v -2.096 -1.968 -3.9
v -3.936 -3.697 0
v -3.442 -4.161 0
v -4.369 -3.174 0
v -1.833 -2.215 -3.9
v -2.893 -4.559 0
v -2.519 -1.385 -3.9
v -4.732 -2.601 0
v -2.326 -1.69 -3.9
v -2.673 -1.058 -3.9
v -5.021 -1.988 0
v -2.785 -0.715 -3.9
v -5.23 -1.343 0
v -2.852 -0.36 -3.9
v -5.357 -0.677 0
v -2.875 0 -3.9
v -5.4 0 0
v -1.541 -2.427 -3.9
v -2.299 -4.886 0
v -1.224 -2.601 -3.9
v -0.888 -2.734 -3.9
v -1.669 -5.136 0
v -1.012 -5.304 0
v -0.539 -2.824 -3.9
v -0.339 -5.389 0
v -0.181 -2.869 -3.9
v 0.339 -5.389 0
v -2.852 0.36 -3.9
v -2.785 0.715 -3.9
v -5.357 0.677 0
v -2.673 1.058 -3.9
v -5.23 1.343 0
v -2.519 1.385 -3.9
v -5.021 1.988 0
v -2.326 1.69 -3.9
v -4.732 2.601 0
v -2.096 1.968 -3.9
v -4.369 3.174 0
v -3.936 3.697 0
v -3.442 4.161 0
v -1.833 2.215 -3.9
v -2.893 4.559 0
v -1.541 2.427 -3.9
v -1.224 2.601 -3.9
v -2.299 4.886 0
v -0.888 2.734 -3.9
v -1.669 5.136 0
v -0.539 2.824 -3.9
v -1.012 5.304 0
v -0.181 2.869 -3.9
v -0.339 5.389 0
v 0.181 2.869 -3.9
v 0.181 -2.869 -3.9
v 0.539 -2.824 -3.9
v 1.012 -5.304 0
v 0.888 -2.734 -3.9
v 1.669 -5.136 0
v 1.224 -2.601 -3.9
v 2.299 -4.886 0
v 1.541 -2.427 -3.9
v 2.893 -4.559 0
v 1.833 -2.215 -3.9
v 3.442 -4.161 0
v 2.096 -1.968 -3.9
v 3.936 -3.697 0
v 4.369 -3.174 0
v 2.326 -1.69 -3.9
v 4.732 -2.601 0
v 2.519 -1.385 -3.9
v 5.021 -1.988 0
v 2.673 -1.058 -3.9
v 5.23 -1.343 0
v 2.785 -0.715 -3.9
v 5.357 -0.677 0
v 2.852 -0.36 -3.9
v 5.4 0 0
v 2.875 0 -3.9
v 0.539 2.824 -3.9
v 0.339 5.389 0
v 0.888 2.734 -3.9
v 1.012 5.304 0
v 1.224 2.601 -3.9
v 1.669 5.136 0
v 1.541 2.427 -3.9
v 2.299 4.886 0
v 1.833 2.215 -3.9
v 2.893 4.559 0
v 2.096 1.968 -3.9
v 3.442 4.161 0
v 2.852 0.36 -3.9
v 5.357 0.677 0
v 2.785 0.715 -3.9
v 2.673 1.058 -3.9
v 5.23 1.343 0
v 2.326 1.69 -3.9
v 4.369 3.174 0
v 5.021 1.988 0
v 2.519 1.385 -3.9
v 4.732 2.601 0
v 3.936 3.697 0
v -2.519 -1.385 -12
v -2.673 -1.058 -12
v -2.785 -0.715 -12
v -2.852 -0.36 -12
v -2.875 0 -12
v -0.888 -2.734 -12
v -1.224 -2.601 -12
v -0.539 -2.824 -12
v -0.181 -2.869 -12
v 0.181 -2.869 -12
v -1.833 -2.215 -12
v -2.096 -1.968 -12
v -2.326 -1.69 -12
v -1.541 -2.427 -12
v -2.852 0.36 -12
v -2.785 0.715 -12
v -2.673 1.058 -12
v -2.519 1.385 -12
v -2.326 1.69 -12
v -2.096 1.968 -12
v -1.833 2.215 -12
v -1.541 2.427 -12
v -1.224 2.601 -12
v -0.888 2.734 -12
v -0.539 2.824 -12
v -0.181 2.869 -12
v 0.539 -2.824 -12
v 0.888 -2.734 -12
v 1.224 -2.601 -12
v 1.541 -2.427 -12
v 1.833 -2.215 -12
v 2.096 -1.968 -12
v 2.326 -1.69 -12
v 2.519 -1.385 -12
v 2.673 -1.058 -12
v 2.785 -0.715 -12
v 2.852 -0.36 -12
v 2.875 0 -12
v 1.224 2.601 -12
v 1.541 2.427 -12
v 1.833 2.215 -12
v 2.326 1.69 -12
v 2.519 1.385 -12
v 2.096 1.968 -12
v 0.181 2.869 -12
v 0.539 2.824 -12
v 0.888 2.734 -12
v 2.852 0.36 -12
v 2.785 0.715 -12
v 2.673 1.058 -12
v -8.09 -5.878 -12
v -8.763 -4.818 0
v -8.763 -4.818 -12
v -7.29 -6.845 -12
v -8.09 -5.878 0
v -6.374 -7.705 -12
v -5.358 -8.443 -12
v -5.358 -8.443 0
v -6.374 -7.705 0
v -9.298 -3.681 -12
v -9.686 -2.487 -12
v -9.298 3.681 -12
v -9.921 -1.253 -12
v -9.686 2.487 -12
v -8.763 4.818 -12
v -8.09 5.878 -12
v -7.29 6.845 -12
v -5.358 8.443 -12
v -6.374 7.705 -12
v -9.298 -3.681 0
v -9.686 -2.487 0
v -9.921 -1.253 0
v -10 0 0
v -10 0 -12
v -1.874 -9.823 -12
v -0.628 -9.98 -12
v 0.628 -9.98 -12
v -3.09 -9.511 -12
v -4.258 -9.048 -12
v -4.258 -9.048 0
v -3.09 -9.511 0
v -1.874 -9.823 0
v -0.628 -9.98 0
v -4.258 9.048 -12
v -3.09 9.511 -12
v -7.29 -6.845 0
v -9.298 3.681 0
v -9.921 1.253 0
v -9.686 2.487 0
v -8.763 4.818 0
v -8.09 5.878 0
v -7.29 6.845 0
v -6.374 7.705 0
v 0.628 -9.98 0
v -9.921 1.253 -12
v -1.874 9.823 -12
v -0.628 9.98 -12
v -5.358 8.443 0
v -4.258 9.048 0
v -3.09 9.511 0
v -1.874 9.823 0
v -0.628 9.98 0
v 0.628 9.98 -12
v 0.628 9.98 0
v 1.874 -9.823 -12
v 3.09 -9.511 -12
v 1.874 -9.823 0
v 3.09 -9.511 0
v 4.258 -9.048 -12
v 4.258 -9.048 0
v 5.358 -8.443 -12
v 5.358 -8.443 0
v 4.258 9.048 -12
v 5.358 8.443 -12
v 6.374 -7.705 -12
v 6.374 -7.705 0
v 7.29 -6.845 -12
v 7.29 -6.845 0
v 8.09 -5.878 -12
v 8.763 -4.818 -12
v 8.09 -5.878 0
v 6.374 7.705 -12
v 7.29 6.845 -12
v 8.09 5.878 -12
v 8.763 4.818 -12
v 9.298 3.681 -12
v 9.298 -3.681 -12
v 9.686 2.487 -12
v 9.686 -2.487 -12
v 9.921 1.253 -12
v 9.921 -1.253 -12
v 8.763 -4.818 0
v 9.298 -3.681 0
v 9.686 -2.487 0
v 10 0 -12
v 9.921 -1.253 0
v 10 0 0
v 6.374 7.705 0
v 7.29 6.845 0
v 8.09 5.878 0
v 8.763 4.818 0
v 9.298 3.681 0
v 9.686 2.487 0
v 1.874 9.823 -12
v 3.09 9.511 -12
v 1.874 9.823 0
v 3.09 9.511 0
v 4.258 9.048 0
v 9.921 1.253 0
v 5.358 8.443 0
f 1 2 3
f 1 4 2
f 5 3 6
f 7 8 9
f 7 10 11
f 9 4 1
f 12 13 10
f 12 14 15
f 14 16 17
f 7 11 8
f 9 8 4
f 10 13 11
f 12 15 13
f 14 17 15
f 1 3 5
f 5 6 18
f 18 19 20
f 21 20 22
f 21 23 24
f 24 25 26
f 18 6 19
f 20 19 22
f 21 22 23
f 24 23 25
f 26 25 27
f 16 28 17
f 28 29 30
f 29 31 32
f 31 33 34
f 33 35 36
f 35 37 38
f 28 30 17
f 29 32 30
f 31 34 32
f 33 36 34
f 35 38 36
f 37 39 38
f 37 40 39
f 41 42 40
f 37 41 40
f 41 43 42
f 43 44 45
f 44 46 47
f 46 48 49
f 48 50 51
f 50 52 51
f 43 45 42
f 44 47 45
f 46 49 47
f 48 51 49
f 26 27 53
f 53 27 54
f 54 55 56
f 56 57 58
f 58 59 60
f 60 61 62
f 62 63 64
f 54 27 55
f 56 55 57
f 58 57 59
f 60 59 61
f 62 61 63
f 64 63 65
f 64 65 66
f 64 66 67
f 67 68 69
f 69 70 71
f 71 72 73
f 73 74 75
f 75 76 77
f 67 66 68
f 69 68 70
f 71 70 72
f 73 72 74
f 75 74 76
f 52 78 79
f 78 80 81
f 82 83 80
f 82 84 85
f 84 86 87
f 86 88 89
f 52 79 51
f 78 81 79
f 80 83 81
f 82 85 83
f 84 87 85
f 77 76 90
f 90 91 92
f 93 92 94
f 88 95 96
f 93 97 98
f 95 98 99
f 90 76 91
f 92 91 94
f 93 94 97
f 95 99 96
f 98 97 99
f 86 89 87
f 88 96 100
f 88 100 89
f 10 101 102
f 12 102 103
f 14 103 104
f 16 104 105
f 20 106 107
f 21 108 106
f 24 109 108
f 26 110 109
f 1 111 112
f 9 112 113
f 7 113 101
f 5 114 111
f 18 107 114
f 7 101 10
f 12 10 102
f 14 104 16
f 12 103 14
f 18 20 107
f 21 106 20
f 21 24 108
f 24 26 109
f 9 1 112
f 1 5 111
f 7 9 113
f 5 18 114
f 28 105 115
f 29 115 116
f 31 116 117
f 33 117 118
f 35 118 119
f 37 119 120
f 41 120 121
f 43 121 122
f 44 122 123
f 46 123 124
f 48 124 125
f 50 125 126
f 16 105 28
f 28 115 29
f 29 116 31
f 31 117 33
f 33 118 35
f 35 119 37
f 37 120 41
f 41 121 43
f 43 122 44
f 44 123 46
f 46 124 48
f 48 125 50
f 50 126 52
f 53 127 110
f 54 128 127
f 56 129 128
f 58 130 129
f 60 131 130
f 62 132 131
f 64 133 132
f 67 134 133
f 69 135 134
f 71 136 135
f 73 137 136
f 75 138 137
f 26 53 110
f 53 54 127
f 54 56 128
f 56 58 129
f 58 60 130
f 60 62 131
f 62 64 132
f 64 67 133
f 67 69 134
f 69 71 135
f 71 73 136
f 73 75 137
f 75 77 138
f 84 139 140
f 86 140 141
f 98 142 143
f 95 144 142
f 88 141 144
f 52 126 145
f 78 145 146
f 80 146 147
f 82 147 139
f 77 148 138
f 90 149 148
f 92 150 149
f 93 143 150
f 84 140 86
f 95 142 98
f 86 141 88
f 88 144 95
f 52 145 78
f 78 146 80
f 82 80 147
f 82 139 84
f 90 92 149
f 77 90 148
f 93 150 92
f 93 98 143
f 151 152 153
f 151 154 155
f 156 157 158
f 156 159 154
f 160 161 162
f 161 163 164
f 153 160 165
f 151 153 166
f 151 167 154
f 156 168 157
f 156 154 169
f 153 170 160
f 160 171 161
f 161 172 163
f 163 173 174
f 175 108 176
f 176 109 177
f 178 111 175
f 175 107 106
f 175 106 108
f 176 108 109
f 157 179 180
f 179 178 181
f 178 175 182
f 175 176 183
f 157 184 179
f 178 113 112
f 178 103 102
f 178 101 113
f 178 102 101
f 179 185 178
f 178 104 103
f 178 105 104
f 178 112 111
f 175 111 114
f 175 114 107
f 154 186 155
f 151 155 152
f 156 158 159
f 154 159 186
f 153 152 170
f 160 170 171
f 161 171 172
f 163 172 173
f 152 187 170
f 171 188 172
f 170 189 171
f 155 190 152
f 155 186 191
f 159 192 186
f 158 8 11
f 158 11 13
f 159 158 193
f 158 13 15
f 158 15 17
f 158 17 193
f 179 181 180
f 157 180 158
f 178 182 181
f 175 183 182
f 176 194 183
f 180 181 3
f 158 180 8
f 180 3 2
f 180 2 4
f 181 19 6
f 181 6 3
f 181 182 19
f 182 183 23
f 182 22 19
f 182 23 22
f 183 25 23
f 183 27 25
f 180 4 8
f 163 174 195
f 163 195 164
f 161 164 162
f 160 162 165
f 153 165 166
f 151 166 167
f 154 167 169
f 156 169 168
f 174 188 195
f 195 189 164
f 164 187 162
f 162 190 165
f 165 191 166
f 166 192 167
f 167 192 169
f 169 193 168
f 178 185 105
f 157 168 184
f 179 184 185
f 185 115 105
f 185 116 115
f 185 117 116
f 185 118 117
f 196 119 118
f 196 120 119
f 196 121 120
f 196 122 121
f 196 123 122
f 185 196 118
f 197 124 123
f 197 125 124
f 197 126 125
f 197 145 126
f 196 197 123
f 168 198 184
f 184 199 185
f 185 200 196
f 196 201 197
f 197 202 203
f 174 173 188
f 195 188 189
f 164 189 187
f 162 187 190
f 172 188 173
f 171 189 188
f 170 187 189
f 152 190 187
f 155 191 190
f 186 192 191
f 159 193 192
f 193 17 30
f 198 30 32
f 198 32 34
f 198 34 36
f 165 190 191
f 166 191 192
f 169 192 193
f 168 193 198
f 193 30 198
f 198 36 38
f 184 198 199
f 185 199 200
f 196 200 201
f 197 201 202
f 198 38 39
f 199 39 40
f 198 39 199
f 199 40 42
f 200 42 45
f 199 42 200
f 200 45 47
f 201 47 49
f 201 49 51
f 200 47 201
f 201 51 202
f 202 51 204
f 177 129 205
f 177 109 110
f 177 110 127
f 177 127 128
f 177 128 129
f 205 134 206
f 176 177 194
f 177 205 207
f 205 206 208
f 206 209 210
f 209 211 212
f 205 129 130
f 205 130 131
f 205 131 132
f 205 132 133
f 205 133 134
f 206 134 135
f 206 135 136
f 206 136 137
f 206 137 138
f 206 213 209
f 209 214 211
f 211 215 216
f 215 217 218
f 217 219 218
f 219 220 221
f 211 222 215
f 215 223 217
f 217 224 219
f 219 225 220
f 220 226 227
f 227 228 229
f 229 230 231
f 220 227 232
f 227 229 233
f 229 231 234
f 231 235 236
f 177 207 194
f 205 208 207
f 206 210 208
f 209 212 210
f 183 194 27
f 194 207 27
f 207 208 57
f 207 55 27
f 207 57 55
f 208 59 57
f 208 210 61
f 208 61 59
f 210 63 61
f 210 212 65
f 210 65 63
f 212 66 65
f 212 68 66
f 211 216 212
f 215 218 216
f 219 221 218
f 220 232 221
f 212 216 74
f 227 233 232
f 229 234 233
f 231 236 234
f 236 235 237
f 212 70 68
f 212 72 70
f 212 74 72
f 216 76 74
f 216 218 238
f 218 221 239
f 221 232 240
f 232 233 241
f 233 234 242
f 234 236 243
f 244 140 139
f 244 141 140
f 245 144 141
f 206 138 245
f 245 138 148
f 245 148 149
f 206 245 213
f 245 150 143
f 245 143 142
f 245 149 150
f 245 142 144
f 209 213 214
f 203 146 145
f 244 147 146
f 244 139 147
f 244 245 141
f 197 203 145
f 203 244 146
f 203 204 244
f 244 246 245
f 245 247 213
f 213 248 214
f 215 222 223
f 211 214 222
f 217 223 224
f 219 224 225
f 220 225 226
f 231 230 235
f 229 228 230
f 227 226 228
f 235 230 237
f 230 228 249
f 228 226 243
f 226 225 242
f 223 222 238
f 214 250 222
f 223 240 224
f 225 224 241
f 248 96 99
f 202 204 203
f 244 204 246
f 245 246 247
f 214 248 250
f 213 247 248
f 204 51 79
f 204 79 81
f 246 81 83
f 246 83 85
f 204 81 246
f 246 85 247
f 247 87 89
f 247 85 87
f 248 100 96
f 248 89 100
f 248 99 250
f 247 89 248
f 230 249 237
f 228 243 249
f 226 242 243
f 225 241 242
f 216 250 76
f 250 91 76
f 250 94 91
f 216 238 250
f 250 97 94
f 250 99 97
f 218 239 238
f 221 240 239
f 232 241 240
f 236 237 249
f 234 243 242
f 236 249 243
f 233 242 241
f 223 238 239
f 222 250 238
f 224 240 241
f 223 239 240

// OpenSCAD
$fn = 50;


difference() {
	union() {
		translate(v = [0, 0, -12.0000000000]) {
			cylinder(h = 12, r = 10.0000000000);
		}
	}
	union() {
		translate(v = [0, 0, 0]) {
			rotate(a = [0, 0, 0]) {
				difference() {
					union() {
						translate(v = [0, 0, -15.0000000000]) {
							cylinder(h = 15, r = 2.6000000000);
						}
						translate(v = [0, 0, -3.9000000000]) {
							cylinder(h = 3.9000000000, r1 = 2.8750000000, r2 = 5.4000000000);
						}
						translate(v = [0, 0, -15.0000000000]) {
							cylinder(h = 15, r = 2.8750000000);
						}
						translate(v = [0, 0, -15.0000000000]) {
							cylinder(h = 15, r = 2.6000000000);
						}
					}
					union();
				}
			}
		}
	}
}
